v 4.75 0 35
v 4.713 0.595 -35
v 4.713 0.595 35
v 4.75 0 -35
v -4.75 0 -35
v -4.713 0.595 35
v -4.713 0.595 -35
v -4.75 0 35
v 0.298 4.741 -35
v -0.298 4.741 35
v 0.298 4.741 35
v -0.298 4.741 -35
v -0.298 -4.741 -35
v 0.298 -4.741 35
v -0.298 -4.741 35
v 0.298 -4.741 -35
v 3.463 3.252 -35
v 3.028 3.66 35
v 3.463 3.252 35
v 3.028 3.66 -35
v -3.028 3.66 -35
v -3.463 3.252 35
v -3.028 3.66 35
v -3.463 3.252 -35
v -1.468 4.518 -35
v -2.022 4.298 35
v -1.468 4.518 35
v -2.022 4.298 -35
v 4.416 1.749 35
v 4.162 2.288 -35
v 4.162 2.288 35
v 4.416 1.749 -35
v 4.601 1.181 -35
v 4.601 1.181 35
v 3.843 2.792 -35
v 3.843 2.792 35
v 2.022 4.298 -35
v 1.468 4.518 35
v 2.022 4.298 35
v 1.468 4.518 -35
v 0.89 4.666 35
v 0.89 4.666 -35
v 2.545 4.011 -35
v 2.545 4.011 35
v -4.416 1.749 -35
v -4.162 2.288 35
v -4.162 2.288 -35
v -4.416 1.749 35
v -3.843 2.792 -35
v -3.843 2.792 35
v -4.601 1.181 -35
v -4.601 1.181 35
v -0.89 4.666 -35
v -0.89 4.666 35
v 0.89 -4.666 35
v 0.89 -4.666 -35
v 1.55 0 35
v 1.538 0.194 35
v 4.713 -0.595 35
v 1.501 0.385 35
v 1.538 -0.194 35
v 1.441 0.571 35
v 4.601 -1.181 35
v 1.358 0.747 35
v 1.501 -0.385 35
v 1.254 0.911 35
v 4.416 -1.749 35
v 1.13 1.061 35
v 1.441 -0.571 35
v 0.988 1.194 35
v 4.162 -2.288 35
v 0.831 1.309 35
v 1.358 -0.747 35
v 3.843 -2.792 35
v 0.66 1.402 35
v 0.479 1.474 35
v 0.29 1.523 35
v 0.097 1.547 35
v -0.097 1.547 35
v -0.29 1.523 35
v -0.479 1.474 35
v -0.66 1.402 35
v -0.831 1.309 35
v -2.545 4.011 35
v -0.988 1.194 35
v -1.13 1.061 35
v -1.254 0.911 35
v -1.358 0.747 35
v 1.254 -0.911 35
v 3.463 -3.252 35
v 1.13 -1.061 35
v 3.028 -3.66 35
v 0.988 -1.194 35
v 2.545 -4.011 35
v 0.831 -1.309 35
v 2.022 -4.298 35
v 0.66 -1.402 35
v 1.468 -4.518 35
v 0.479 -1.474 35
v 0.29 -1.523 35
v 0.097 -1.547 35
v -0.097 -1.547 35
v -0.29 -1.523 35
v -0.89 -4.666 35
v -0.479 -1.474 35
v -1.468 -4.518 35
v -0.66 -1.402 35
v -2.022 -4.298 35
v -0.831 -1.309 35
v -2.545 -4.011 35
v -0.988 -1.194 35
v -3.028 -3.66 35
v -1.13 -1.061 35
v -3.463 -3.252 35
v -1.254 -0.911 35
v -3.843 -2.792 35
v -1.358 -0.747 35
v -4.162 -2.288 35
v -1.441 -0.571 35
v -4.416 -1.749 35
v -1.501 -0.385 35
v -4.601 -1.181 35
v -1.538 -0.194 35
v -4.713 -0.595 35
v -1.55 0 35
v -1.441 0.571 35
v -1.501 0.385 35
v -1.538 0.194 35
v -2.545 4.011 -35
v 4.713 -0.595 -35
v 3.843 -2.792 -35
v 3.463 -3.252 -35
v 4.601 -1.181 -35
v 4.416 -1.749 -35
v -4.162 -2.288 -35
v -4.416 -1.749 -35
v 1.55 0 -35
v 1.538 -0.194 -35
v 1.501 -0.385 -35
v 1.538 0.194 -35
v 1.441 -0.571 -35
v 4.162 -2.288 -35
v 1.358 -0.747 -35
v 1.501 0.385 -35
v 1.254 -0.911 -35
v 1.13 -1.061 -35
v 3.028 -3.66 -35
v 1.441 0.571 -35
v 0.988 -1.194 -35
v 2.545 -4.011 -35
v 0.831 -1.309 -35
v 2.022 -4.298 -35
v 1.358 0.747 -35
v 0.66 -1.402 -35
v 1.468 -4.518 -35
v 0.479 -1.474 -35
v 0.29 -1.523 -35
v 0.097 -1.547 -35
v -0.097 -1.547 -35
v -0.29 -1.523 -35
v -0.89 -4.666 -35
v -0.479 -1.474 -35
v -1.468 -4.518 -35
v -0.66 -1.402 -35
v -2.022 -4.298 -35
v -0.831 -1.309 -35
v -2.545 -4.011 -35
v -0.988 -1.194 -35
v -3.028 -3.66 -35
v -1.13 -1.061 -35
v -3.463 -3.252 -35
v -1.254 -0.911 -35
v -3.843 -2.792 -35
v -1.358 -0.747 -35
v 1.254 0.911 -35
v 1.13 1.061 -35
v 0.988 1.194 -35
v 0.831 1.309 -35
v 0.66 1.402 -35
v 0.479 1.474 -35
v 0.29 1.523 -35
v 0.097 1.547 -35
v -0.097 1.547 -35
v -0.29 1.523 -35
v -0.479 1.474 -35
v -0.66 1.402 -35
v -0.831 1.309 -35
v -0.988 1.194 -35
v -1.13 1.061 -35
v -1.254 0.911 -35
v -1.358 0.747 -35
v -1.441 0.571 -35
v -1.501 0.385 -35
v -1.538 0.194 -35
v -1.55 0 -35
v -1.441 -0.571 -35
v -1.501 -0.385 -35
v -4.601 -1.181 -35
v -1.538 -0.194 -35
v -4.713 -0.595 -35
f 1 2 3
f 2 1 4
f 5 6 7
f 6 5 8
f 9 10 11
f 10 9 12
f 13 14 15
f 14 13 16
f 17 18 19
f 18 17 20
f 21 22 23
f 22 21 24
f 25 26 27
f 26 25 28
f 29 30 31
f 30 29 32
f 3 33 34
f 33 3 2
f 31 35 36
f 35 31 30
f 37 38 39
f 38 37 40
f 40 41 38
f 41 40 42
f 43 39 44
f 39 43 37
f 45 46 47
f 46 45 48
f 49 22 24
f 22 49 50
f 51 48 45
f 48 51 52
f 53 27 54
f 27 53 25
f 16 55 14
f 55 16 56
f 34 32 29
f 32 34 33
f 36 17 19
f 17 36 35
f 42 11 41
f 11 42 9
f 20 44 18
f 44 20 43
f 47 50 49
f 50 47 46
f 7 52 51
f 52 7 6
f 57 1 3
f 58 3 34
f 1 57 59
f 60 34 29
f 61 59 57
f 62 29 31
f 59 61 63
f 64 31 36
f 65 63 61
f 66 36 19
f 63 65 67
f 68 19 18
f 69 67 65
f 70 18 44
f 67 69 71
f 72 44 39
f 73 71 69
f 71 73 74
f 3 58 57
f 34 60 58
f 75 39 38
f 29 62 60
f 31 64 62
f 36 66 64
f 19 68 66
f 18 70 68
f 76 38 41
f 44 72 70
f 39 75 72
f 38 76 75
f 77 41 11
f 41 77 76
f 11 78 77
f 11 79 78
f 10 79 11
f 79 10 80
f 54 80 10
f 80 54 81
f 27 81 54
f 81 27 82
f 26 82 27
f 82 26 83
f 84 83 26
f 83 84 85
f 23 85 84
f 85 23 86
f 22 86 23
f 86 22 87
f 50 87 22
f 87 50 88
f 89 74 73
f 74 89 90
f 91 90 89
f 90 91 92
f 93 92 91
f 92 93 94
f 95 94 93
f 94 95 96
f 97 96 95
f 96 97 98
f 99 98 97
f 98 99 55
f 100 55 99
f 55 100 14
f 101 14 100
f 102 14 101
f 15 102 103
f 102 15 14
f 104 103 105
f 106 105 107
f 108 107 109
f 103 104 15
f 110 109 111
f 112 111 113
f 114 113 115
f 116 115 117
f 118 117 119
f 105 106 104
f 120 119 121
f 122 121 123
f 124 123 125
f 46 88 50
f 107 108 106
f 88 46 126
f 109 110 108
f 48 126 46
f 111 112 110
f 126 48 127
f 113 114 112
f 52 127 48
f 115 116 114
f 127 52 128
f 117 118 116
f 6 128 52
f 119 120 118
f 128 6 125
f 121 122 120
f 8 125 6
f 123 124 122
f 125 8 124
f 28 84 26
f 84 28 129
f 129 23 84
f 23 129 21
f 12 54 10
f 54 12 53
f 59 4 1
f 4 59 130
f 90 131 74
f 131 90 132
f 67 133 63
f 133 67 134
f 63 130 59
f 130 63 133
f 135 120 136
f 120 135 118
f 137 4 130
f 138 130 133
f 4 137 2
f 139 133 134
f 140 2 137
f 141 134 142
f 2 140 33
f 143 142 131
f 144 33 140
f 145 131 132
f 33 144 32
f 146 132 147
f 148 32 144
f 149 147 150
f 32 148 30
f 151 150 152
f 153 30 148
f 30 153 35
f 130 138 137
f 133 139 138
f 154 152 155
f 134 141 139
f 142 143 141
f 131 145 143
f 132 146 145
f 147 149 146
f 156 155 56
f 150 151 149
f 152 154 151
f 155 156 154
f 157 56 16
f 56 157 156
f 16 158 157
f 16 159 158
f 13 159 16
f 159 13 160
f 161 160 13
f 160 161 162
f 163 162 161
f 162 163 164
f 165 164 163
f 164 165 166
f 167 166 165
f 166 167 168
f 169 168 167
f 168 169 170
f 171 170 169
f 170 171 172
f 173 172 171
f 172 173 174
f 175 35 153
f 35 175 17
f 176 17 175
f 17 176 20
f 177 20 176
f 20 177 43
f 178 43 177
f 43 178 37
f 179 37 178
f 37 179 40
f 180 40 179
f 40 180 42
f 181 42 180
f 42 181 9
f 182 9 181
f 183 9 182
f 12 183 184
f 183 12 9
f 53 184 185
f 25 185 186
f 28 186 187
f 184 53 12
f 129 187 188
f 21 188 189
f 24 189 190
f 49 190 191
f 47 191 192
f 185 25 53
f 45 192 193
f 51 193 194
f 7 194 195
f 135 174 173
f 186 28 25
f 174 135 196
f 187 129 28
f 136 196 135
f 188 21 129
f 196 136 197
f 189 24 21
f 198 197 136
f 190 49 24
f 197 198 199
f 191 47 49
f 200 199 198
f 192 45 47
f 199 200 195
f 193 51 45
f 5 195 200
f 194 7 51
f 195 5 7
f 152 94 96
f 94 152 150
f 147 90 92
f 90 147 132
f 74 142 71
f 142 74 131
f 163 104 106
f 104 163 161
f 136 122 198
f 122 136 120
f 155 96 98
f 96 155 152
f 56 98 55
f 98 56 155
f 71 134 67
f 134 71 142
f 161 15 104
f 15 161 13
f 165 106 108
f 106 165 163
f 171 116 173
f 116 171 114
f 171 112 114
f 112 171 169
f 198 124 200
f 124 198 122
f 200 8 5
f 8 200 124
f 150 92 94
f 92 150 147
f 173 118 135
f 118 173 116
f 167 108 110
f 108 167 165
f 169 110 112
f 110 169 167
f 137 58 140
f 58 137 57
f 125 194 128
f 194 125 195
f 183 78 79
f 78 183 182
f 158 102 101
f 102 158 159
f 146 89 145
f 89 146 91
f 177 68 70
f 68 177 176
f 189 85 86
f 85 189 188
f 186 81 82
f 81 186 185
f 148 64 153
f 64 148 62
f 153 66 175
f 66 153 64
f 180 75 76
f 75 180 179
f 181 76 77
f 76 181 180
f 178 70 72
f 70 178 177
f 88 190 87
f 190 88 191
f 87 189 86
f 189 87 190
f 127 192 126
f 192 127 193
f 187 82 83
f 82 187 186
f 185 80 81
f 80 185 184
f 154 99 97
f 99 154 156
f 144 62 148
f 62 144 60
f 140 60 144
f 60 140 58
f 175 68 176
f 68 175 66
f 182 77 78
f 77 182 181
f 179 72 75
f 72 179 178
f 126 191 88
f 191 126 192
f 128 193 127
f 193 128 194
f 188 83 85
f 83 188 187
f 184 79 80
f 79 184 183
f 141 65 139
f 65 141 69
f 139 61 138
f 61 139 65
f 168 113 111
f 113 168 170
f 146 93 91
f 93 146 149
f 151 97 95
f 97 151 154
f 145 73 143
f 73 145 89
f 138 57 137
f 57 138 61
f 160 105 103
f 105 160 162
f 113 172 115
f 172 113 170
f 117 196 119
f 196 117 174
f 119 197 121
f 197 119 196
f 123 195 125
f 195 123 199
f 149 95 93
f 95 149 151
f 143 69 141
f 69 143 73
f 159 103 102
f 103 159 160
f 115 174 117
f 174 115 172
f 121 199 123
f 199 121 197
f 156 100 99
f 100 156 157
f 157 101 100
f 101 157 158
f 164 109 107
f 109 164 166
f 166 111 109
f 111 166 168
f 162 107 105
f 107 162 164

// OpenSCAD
$fn = 50;


difference() {
	union() {
		translate(v = [0, 0, -35.0000000000]) {
			cylinder(h = 70, r = 4.7500000000);
		}
	}
	union() {
		translate(v = [0, 0, -100.0000000000]) {
			cylinder(h = 200, r = 1.5500000000);
		}
	}
}
